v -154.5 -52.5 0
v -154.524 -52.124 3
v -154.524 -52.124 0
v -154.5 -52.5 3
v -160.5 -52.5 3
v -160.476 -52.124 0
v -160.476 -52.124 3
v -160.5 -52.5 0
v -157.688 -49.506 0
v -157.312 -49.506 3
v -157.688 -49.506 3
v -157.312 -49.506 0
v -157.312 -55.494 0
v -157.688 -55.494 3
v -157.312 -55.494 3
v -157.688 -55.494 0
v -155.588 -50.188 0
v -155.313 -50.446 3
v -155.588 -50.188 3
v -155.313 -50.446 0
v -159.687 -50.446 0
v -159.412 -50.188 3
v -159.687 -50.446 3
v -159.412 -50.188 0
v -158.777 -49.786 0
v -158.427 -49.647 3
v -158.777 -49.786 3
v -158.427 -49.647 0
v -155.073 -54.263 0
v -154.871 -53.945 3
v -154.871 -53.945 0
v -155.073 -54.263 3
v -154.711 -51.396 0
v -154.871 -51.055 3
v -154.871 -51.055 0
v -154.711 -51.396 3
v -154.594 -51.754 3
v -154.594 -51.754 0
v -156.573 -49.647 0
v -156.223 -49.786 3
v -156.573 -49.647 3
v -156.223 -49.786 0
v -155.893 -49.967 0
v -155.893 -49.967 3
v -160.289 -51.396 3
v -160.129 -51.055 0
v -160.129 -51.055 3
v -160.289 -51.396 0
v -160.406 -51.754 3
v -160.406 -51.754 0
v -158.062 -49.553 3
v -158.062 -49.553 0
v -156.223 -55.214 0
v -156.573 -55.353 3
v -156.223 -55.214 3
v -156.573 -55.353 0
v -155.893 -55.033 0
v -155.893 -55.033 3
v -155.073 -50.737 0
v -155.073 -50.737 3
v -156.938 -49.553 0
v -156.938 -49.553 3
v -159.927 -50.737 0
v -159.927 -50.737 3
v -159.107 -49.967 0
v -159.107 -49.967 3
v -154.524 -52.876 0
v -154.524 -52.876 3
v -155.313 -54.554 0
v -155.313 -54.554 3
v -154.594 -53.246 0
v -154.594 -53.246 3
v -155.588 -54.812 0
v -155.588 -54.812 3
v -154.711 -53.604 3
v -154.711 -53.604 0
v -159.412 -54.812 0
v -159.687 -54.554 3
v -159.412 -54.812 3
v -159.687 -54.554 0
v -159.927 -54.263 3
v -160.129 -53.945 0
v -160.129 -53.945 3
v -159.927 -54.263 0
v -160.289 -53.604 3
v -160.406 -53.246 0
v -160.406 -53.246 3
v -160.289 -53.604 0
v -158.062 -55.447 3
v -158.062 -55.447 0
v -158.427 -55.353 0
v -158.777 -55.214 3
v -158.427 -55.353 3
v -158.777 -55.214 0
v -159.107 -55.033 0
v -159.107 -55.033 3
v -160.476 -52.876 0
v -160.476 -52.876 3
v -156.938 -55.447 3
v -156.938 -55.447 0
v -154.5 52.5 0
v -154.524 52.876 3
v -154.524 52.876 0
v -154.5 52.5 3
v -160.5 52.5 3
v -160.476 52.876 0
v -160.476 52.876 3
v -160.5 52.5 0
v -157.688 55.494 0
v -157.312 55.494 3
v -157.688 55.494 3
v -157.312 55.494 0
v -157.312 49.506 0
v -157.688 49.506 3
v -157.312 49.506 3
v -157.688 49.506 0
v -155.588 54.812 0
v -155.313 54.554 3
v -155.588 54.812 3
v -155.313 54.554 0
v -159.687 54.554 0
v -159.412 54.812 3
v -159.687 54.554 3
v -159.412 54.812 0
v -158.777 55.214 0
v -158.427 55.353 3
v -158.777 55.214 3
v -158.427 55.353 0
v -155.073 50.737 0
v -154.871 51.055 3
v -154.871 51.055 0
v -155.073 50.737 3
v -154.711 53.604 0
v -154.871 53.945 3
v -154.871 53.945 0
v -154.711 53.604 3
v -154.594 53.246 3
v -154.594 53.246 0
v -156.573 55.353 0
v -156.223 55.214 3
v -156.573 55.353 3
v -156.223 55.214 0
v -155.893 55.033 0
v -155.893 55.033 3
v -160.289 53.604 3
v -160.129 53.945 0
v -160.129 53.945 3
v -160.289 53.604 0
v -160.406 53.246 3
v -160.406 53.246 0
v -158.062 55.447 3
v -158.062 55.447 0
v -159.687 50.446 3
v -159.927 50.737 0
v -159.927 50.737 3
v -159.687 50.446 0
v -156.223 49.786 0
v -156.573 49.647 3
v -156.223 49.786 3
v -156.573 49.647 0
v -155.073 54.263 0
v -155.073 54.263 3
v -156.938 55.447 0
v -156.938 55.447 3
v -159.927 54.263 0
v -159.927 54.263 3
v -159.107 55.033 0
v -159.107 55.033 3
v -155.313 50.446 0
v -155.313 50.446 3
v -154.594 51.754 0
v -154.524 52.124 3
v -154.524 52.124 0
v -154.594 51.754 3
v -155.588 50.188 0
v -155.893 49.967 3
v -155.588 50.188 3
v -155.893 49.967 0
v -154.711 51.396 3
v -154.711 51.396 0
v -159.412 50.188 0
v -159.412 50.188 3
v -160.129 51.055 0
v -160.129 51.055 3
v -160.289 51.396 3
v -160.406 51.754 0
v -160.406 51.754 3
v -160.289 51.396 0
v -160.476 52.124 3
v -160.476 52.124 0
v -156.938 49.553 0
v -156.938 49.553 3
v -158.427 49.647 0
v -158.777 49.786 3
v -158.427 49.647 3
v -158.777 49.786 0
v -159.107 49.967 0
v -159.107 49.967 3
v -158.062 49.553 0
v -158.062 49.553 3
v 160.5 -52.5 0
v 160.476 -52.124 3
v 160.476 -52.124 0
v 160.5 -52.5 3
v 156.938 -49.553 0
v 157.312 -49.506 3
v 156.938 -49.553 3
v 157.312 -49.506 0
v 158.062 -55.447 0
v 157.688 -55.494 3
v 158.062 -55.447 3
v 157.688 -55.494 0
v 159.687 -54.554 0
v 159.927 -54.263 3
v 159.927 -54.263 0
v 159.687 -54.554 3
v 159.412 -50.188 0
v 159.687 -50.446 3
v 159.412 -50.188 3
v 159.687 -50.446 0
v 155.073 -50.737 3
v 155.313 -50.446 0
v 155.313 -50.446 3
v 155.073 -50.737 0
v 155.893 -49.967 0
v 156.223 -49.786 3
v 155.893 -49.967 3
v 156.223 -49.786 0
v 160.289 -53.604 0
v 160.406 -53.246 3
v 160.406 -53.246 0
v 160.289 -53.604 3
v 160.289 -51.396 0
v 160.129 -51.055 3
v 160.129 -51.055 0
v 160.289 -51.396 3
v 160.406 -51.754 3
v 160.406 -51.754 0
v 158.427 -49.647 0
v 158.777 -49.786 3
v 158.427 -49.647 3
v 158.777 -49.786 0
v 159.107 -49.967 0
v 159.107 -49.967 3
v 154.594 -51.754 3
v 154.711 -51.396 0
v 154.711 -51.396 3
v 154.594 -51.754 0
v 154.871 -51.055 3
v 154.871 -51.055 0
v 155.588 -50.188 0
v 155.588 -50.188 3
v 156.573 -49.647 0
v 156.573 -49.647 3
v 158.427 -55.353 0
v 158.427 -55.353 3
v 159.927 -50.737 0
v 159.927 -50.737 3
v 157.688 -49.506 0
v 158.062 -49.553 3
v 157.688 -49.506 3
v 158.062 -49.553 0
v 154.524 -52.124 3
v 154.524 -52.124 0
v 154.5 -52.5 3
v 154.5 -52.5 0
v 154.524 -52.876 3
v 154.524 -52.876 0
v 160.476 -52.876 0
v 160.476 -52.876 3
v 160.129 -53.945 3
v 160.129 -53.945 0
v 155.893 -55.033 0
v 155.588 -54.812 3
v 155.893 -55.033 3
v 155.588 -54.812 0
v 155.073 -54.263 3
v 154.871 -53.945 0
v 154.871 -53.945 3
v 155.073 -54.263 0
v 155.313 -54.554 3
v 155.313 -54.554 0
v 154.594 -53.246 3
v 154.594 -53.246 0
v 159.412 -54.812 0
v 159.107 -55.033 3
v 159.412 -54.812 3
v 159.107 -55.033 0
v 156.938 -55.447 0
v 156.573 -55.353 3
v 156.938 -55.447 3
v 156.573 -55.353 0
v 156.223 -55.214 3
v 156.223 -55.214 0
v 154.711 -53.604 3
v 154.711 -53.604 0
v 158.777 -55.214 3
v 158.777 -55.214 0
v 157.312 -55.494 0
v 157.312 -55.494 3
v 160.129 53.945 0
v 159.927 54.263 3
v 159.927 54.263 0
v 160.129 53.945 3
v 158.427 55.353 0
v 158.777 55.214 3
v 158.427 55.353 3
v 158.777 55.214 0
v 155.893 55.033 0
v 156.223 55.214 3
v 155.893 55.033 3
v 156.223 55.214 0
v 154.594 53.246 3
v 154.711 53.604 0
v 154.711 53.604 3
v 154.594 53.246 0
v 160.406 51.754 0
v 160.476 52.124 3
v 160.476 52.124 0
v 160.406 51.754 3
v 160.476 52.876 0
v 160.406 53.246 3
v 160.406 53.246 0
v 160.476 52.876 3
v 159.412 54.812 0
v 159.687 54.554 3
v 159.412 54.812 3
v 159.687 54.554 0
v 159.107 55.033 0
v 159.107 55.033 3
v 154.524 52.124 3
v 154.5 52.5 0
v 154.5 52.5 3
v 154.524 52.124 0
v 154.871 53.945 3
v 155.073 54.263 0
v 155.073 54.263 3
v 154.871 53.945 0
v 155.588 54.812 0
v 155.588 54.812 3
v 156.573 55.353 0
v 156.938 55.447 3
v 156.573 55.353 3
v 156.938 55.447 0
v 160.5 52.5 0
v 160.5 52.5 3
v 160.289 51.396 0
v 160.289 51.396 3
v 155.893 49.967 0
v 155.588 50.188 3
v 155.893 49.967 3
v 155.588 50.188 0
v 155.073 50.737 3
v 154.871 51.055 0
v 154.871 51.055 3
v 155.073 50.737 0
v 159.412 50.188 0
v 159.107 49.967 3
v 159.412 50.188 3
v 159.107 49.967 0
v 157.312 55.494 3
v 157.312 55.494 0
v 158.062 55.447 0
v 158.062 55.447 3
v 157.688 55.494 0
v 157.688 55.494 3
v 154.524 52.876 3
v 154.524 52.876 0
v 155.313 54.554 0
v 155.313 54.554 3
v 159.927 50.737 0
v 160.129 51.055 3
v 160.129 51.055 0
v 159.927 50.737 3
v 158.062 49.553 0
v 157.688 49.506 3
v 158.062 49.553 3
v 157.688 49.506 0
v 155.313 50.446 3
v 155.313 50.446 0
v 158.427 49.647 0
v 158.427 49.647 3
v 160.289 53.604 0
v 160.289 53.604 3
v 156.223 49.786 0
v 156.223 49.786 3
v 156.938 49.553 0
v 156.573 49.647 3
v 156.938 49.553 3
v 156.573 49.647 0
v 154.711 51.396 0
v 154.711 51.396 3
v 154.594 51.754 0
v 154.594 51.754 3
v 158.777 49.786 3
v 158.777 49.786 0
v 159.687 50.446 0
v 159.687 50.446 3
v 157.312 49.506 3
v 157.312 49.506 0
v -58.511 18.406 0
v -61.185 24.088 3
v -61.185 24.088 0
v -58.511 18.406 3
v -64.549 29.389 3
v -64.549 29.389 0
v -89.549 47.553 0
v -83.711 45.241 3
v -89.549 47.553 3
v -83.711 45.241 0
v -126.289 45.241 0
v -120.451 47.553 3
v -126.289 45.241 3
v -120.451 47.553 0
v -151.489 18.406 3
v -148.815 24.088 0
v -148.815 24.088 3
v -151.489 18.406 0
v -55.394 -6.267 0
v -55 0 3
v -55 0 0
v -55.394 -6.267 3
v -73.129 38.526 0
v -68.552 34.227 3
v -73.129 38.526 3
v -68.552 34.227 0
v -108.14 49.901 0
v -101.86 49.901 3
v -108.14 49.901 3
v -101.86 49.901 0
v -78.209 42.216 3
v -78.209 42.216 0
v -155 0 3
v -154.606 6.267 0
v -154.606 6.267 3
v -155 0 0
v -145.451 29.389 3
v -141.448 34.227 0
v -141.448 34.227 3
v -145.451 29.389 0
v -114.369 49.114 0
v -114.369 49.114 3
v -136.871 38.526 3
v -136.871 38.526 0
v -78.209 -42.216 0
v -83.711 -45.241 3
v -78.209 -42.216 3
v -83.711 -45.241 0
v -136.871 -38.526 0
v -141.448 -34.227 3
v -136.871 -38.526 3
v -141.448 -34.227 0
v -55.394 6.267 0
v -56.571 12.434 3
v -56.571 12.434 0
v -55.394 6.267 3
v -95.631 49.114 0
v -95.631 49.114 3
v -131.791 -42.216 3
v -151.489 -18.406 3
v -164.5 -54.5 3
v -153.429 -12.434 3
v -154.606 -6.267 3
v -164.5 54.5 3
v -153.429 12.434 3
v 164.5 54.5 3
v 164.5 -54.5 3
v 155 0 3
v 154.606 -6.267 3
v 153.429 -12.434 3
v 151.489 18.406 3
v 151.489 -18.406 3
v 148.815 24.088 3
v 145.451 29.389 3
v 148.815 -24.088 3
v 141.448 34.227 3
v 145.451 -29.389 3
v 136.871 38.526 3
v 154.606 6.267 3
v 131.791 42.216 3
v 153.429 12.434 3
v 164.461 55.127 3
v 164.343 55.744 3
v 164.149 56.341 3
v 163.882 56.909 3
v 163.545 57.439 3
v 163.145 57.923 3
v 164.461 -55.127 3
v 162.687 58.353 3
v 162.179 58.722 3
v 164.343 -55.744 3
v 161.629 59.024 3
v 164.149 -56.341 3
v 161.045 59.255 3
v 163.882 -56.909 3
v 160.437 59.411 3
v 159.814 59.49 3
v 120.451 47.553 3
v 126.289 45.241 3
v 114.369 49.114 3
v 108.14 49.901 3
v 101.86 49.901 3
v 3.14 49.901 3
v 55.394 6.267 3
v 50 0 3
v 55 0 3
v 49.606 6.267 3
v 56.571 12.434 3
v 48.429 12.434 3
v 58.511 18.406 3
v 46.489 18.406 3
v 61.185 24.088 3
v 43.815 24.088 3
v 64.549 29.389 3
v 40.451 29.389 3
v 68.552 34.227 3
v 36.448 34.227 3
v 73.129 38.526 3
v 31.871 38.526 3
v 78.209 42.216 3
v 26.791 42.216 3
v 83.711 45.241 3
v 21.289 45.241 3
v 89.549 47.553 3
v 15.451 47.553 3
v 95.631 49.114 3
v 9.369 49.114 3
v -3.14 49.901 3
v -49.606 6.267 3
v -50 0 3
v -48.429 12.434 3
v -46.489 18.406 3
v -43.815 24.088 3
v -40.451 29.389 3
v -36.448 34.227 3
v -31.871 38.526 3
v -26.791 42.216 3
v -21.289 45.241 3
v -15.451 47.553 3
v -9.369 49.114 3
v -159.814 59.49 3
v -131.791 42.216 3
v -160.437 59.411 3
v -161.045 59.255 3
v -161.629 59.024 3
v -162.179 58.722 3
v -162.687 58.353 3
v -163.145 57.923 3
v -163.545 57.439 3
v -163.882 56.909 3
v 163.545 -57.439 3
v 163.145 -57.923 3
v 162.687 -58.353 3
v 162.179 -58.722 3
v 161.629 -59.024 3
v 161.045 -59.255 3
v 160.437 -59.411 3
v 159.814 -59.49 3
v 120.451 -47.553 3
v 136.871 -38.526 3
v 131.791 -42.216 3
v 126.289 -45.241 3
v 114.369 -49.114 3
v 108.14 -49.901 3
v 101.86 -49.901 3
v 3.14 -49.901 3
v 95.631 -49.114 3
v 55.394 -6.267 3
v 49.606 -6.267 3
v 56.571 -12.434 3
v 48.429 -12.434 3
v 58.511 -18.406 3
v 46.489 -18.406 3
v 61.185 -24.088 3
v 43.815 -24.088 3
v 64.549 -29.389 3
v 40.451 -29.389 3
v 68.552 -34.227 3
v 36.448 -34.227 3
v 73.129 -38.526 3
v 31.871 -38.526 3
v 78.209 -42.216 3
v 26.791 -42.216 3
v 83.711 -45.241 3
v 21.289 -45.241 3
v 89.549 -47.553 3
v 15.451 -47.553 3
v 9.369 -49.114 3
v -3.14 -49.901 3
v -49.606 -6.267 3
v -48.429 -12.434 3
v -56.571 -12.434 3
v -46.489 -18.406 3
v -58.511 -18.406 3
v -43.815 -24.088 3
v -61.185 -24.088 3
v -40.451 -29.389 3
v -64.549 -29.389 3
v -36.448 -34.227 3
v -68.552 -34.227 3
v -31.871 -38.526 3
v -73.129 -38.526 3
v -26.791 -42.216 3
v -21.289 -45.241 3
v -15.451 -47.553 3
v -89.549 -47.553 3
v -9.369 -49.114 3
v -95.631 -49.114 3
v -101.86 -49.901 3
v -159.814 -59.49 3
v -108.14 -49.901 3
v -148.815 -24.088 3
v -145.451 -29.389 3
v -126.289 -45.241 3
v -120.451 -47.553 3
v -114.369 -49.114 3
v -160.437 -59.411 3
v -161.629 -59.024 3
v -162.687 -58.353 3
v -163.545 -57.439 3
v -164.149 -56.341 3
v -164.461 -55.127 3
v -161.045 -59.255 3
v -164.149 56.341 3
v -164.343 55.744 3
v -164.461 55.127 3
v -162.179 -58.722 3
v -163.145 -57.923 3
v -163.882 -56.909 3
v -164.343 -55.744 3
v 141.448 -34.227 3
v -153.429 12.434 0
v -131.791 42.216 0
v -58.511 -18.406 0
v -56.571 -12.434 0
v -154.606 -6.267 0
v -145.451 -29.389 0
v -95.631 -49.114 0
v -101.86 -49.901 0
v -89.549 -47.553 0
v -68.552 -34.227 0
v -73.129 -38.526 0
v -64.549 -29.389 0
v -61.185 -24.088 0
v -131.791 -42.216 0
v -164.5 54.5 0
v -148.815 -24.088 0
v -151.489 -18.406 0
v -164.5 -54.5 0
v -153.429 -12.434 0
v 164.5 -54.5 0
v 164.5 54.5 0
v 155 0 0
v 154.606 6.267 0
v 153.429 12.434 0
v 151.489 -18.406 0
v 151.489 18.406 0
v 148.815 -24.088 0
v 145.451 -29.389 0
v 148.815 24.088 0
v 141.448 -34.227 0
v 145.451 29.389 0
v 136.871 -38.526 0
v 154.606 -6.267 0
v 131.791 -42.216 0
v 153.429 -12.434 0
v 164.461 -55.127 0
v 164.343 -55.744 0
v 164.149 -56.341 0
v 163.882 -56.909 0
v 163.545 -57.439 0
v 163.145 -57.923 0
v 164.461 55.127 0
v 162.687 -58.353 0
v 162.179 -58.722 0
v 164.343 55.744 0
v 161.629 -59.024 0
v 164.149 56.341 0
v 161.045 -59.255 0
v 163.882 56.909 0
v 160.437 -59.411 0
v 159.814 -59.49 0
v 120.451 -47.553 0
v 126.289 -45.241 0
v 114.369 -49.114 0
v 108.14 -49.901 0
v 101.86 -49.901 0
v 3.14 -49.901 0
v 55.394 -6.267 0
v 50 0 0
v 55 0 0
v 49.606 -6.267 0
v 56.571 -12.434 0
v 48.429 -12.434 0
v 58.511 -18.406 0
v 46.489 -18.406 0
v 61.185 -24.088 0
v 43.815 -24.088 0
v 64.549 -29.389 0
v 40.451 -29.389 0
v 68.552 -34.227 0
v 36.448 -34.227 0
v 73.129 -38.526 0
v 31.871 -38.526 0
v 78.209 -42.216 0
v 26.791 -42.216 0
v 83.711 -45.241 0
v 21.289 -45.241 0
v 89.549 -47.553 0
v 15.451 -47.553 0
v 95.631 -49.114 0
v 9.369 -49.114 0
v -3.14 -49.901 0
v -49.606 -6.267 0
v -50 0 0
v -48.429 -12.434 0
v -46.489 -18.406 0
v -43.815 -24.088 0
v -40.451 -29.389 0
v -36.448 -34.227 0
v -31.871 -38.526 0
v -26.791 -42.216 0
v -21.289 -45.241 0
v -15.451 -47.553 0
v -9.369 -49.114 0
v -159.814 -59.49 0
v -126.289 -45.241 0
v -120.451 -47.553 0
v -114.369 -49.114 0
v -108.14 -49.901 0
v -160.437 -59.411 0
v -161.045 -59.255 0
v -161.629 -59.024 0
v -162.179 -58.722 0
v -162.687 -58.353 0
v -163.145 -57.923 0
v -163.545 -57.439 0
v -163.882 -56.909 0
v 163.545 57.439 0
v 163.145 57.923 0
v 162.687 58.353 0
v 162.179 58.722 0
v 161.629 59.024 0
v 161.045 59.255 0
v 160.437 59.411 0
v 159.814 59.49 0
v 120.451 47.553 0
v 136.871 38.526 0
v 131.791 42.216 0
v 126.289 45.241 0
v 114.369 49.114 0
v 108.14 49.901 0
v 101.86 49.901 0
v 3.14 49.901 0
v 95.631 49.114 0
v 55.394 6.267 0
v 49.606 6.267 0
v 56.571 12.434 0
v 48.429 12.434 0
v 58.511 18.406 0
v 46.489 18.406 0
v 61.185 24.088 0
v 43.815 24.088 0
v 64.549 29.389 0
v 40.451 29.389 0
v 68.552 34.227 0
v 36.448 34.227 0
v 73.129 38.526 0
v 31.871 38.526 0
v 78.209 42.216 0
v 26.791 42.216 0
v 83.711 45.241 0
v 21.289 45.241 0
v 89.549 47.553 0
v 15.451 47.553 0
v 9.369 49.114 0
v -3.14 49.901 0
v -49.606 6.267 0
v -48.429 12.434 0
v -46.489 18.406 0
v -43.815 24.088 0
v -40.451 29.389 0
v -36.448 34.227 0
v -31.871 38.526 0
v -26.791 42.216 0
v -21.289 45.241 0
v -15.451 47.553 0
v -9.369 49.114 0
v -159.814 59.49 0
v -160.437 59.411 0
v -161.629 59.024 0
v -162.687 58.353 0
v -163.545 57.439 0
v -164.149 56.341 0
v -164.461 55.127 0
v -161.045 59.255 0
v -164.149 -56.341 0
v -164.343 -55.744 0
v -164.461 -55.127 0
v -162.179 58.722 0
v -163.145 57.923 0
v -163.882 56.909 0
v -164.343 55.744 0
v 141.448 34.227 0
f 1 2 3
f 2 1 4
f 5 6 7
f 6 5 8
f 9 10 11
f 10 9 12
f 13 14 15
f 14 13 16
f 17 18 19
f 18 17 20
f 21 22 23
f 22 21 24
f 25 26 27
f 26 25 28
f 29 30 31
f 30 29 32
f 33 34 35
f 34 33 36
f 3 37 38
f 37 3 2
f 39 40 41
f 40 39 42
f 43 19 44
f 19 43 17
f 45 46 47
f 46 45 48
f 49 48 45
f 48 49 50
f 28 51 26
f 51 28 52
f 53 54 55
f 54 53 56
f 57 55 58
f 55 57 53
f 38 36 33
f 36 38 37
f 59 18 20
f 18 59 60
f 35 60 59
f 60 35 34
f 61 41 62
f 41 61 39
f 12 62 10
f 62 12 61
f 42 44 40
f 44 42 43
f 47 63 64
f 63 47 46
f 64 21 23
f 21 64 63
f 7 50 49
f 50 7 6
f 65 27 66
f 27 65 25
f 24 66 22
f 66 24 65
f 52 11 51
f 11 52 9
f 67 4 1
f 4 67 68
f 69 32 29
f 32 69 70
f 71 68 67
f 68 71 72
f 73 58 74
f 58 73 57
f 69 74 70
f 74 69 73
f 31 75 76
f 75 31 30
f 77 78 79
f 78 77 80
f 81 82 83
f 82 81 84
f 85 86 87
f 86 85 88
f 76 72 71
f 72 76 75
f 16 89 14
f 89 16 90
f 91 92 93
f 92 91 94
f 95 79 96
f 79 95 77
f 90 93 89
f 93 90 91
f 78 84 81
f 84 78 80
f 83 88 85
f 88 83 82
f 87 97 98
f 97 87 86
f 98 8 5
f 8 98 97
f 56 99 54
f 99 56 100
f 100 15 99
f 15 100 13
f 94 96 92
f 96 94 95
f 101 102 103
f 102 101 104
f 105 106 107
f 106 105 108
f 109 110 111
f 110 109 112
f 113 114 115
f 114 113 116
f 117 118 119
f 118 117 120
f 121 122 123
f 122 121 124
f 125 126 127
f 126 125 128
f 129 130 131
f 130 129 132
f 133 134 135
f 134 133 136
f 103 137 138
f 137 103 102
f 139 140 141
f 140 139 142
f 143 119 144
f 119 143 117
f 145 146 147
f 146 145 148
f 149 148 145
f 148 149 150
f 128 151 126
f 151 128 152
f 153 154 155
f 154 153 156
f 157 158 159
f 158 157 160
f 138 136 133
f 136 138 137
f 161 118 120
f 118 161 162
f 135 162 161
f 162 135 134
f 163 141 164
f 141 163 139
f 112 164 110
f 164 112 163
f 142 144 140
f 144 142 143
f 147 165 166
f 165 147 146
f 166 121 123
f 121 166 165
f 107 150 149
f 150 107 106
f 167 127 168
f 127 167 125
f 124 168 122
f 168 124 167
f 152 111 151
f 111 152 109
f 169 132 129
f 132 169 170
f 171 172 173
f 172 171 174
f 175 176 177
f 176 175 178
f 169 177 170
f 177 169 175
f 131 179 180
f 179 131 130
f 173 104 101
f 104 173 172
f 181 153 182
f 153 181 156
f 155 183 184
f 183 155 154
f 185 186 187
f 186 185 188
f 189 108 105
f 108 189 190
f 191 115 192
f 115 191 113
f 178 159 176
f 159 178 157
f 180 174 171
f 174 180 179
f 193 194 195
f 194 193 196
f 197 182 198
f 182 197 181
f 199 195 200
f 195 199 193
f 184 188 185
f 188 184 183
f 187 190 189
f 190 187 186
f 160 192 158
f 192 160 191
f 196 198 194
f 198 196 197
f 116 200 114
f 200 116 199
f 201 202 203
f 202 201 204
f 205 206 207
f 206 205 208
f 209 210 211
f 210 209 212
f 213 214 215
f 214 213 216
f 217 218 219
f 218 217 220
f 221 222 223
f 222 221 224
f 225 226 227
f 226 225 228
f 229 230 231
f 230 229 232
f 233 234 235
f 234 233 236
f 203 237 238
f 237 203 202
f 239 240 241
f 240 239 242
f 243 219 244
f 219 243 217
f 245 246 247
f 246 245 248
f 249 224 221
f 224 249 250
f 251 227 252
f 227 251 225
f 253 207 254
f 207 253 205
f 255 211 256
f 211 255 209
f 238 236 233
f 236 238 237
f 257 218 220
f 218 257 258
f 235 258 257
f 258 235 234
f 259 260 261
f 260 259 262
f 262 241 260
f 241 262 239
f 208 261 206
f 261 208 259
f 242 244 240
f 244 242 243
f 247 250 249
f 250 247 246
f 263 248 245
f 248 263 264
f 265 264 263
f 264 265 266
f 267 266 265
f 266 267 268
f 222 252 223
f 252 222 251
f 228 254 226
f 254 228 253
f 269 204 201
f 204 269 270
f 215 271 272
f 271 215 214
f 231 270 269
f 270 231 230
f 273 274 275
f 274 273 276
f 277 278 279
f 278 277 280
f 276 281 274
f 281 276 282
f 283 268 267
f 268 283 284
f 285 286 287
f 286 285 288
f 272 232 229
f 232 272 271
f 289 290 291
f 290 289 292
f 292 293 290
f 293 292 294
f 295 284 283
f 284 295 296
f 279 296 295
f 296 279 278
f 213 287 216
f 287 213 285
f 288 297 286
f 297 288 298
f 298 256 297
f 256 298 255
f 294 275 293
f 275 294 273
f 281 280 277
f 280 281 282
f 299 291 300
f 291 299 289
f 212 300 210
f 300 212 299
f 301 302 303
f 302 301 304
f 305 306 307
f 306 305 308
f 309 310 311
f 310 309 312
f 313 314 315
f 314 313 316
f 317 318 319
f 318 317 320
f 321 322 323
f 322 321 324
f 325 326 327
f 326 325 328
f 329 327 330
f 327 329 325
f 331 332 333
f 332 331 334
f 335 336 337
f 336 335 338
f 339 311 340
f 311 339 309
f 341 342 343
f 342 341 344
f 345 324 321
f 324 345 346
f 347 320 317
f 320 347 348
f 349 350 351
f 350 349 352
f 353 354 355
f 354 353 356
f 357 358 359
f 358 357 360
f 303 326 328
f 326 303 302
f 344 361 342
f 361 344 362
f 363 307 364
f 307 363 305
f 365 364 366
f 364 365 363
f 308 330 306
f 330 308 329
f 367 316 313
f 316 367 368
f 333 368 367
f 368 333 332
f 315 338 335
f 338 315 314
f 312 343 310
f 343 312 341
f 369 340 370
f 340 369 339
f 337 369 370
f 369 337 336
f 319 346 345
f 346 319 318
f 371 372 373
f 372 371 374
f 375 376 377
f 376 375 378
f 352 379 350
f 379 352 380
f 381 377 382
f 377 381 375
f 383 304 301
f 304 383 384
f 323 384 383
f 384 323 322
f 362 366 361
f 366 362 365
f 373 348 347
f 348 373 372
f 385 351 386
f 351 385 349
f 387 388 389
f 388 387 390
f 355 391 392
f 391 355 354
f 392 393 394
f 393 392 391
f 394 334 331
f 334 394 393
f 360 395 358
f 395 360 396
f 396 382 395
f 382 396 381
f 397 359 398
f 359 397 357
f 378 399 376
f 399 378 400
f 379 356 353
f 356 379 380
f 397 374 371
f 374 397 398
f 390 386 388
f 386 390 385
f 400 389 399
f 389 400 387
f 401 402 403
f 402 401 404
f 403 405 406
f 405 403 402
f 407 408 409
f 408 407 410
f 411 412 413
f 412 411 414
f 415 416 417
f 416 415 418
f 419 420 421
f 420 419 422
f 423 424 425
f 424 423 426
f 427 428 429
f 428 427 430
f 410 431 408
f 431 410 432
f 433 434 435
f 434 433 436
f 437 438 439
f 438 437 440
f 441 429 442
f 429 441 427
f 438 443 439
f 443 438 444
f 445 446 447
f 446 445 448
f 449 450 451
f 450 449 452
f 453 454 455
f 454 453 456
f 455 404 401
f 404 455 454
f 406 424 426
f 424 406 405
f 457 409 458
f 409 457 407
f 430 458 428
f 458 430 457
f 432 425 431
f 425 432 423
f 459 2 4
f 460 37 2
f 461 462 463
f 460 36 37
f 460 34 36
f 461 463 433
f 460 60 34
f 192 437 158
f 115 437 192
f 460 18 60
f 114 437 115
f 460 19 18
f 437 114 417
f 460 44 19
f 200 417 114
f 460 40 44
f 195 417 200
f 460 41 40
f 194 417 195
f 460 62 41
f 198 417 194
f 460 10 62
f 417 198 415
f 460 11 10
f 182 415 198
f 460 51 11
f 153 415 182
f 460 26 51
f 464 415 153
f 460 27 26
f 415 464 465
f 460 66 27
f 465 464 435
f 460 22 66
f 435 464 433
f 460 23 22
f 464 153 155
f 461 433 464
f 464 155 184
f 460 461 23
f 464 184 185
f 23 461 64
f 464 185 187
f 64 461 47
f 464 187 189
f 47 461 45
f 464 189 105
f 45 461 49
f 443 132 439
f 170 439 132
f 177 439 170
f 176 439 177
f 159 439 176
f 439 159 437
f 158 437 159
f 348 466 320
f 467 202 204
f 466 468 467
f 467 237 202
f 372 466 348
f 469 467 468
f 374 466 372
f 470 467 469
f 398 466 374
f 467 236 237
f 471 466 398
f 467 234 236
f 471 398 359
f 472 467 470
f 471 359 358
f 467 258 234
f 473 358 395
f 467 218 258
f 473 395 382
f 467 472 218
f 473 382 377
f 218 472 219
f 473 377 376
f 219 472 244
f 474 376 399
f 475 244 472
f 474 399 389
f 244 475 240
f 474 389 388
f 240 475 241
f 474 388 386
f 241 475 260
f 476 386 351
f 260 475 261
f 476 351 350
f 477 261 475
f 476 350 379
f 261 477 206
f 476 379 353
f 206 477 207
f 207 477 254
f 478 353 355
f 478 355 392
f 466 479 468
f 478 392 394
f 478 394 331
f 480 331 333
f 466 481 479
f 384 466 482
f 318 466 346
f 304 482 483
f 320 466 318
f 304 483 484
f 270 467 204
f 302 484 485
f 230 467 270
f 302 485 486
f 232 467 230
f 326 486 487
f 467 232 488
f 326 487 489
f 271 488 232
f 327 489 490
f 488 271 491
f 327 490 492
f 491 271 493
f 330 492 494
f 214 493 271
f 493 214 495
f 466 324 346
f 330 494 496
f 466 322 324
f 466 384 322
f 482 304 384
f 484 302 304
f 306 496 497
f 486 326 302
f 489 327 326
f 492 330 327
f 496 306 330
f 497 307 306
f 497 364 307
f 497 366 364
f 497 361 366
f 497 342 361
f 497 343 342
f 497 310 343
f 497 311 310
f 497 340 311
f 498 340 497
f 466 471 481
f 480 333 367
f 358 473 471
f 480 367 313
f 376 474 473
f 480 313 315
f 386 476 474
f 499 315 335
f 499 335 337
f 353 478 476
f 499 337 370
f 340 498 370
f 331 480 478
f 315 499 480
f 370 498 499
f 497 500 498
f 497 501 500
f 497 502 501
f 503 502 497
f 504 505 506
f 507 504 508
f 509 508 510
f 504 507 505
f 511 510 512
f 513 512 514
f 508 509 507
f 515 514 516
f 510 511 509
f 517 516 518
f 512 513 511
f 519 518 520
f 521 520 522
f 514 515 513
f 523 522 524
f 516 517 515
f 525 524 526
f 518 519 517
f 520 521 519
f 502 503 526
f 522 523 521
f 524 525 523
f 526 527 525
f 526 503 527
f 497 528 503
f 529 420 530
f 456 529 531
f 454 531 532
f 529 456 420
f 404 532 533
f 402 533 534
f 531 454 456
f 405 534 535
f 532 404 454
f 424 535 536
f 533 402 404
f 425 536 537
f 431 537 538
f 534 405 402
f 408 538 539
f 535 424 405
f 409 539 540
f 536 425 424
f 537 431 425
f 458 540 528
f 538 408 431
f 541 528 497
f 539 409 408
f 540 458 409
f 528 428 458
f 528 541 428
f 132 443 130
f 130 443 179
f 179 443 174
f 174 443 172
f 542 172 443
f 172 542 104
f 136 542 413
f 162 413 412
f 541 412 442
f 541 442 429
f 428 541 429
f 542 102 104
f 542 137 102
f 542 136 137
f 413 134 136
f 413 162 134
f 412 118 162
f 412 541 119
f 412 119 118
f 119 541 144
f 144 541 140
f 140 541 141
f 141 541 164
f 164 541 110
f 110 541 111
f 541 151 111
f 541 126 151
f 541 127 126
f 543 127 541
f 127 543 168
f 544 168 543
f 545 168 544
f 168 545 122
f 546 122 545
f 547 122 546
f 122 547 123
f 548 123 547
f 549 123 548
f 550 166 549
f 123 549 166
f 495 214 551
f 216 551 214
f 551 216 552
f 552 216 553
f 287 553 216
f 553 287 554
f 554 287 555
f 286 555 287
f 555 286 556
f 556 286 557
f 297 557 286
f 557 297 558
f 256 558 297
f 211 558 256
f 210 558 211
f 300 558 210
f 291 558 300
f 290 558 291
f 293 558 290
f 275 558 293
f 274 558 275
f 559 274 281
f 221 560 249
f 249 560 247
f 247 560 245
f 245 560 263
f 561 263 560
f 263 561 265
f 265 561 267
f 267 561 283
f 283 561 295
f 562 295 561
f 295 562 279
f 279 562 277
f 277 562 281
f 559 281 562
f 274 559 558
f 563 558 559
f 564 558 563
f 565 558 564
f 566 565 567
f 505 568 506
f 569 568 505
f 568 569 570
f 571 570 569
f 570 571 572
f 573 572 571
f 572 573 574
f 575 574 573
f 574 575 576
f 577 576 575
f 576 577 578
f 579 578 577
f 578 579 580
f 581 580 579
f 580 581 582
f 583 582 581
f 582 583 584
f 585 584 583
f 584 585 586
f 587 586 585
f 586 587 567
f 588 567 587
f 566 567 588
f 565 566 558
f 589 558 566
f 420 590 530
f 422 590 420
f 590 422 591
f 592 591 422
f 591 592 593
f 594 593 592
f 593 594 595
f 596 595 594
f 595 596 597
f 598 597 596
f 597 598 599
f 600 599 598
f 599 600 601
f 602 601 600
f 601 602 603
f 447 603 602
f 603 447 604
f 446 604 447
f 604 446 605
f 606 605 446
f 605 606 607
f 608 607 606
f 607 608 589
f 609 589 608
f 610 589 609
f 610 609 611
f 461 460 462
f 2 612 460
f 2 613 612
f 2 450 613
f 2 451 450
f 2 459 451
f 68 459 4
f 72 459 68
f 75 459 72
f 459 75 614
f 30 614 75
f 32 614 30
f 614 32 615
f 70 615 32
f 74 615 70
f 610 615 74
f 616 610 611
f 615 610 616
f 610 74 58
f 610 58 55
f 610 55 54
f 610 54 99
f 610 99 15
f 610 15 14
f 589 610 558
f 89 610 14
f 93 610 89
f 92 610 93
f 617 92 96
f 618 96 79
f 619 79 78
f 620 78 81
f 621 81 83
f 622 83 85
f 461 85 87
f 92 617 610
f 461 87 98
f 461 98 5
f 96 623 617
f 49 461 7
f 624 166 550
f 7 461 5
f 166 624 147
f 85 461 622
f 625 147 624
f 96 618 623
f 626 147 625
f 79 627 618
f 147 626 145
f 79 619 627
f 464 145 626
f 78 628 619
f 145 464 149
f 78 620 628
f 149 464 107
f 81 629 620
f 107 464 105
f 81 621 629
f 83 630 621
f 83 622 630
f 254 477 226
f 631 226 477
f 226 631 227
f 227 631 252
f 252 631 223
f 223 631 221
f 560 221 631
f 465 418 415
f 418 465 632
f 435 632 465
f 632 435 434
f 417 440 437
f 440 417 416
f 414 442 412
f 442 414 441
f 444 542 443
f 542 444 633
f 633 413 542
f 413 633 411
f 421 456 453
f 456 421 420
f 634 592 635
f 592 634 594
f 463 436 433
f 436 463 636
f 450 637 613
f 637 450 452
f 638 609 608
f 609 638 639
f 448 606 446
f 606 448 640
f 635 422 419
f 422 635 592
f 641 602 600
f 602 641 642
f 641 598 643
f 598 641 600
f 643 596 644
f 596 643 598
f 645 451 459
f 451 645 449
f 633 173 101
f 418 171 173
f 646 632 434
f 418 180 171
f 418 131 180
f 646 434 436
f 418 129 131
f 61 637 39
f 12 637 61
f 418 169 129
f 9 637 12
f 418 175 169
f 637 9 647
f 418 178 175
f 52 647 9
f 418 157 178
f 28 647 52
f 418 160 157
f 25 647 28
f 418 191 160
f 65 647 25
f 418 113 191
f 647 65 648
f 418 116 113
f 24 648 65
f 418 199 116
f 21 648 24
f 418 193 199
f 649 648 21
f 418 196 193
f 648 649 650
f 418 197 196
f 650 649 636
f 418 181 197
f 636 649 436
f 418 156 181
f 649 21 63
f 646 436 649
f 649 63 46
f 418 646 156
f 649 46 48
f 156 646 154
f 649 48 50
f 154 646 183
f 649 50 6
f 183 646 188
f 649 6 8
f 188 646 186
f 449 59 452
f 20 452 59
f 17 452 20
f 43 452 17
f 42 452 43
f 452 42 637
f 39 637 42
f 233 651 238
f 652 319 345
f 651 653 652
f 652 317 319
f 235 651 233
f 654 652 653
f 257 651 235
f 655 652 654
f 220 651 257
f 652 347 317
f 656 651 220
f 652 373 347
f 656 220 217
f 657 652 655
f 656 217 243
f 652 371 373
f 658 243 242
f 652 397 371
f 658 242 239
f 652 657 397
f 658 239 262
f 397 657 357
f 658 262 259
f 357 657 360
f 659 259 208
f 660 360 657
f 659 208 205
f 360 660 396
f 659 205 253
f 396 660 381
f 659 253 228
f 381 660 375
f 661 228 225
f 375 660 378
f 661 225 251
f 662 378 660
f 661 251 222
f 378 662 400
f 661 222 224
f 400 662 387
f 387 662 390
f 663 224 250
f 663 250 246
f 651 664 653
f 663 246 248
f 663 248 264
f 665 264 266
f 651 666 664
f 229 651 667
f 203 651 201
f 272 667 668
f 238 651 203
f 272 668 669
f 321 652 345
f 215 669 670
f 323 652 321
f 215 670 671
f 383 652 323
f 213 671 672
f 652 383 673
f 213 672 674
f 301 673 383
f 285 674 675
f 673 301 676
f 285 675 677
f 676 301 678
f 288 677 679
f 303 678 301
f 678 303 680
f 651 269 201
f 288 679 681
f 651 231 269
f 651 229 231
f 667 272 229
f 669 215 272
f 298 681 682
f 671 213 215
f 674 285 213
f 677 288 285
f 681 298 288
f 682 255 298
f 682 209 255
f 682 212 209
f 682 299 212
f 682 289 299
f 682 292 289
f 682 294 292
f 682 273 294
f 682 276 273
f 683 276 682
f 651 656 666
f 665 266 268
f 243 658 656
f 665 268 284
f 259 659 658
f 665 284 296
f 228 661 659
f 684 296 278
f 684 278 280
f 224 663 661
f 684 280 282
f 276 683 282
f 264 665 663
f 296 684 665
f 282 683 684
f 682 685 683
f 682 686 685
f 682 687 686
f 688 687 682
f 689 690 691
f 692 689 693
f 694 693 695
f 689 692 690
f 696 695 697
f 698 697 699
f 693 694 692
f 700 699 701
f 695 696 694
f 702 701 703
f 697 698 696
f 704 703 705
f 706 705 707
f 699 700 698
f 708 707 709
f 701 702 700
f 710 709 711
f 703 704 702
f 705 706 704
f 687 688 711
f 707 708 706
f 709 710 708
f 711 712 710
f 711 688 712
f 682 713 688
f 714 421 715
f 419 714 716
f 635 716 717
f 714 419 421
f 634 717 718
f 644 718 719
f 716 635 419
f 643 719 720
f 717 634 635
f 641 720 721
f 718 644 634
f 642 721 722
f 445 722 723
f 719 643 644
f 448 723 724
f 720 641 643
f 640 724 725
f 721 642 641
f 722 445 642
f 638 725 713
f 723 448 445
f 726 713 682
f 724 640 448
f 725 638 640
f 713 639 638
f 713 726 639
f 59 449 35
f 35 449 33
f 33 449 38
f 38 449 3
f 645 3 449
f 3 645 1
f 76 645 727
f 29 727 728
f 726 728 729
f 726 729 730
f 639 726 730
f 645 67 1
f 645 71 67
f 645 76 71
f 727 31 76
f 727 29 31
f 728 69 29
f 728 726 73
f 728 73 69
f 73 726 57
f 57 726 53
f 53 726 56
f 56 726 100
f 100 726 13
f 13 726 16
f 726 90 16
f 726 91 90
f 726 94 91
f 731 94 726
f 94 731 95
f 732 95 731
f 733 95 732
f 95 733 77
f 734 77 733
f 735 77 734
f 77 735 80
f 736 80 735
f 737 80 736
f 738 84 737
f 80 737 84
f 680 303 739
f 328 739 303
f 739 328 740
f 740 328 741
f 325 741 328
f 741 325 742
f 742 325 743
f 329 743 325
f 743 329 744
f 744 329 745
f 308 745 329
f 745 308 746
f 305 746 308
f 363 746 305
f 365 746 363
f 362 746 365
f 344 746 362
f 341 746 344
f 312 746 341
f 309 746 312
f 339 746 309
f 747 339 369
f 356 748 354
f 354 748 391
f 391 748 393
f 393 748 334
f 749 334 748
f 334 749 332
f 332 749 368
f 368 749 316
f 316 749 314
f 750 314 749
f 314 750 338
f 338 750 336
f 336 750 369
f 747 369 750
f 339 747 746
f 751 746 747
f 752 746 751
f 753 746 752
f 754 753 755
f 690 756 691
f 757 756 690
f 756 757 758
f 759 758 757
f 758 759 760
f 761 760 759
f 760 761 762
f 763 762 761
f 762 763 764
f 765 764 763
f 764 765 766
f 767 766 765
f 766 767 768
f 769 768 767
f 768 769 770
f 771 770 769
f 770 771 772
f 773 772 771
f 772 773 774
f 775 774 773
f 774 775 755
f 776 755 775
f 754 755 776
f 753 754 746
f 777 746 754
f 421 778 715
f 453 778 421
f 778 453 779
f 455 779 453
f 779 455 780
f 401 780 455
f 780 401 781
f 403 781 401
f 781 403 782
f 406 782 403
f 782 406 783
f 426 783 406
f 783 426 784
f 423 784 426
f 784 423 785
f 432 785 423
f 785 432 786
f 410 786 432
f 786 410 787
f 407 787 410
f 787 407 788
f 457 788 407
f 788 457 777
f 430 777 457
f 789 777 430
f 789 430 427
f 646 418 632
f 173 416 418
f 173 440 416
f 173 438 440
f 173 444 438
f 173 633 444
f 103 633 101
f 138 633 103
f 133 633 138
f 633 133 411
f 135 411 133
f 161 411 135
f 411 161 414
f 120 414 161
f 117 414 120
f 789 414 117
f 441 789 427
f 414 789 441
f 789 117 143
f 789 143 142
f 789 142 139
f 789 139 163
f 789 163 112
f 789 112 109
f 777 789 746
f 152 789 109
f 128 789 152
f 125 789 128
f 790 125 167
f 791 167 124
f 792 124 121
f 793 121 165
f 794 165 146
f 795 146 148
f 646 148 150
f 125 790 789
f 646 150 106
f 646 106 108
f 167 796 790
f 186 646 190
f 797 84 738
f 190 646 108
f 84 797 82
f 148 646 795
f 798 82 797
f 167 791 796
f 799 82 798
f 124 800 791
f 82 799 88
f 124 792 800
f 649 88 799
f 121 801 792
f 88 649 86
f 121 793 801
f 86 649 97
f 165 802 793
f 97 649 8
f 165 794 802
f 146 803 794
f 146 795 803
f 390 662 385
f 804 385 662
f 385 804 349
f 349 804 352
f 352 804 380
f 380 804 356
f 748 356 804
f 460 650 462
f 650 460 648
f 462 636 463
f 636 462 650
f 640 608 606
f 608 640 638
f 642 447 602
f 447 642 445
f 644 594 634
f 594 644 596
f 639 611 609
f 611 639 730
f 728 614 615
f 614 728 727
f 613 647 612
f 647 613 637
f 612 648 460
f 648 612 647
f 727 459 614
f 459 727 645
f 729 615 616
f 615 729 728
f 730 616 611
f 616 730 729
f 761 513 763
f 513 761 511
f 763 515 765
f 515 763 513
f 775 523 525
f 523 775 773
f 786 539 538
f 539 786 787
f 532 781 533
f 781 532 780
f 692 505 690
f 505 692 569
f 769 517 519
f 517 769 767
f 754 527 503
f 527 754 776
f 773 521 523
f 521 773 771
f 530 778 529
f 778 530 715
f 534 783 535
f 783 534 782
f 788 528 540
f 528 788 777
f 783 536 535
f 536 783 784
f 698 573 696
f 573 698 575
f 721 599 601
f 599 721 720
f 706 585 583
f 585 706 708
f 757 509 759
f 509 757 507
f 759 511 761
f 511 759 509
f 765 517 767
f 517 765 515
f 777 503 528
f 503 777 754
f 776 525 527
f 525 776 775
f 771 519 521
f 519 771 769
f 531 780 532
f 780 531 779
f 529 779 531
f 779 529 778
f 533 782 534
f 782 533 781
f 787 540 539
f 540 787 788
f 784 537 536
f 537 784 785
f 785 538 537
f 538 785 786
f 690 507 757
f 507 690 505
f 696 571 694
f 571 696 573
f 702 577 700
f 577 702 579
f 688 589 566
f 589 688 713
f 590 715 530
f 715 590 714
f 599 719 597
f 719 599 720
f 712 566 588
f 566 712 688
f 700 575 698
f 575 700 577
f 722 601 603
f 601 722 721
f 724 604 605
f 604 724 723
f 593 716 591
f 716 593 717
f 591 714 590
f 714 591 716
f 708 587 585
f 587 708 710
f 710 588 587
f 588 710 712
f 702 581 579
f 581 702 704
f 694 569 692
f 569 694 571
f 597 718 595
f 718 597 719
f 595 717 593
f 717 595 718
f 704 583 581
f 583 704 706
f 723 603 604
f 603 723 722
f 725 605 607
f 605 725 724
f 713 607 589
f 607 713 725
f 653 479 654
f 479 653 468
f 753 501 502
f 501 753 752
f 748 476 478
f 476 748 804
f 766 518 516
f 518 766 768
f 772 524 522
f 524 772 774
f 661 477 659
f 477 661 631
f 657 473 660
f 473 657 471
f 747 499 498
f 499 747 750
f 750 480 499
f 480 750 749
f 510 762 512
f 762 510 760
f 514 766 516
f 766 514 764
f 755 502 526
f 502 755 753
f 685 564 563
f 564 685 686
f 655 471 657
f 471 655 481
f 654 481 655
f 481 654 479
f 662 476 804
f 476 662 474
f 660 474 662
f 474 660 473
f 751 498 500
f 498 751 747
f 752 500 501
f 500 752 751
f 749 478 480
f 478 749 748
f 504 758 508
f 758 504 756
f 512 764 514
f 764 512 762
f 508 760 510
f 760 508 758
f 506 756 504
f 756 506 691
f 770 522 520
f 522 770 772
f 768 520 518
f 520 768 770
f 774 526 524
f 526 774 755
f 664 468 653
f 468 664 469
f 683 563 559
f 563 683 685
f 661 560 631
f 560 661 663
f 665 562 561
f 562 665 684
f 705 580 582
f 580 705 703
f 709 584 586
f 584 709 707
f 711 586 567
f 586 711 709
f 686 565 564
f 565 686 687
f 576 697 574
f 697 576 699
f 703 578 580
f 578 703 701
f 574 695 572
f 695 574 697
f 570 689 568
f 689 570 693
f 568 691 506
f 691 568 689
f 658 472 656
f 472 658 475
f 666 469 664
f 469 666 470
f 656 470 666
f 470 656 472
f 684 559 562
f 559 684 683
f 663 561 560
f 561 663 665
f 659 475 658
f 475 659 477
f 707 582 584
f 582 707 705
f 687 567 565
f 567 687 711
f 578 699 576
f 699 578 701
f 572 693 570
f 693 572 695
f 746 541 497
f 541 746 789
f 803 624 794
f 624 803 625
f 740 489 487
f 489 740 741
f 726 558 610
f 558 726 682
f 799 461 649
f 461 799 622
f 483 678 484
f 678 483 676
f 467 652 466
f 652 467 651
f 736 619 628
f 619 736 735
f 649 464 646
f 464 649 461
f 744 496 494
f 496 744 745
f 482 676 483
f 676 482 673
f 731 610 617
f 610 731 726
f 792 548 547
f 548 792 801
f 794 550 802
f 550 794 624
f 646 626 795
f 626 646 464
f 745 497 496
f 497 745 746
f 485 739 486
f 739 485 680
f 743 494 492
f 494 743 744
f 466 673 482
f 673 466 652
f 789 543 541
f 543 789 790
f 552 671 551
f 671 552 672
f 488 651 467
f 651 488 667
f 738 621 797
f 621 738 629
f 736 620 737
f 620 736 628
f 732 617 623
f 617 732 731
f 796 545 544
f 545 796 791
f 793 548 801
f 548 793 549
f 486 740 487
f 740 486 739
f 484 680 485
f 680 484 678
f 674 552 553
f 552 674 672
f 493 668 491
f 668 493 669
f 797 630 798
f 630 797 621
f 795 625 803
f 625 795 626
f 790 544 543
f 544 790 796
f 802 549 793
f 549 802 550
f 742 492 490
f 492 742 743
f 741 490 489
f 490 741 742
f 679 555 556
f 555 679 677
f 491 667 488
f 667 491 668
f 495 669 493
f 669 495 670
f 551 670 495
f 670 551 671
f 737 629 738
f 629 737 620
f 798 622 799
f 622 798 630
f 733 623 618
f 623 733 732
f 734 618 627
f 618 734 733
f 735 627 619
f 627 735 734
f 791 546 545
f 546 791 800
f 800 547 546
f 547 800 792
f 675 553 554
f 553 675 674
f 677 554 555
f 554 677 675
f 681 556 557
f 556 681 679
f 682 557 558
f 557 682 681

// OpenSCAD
$fn = 50;


difference() {
	union() {
		hull() {
			translate(v = [-159.5000000000, 54.5000000000, 0]) {
				cylinder(h = 3, r = 5);
			}
			translate(v = [159.5000000000, 54.5000000000, 0]) {
				cylinder(h = 3, r = 5);
			}
			translate(v = [-159.5000000000, -54.5000000000, 0]) {
				cylinder(h = 3, r = 5);
			}
			translate(v = [159.5000000000, -54.5000000000, 0]) {
				cylinder(h = 3, r = 5);
			}
		}
	}
	union() {
		#translate(v = [-157.5000000000, -52.5000000000, -100.0000000000]) {
			cylinder(h = 200, r = 3.0000000000);
		}
		#translate(v = [-157.5000000000, 52.5000000000, -100.0000000000]) {
			cylinder(h = 200, r = 3.0000000000);
		}
		#translate(v = [157.5000000000, -52.5000000000, -100.0000000000]) {
			cylinder(h = 200, r = 3.0000000000);
		}
		#translate(v = [157.5000000000, 52.5000000000, -100.0000000000]) {
			cylinder(h = 200, r = 3.0000000000);
		}
		#translate(v = [-105.0000000000, 0, 0]) {
			cylinder(h = 3, r = 50.0000000000);
		}
		#cylinder(h = 3, r = 50.0000000000);
		#translate(v = [105.0000000000, 0, 0]) {
			cylinder(h = 3, r = 50.0000000000);
		}
	}
}
